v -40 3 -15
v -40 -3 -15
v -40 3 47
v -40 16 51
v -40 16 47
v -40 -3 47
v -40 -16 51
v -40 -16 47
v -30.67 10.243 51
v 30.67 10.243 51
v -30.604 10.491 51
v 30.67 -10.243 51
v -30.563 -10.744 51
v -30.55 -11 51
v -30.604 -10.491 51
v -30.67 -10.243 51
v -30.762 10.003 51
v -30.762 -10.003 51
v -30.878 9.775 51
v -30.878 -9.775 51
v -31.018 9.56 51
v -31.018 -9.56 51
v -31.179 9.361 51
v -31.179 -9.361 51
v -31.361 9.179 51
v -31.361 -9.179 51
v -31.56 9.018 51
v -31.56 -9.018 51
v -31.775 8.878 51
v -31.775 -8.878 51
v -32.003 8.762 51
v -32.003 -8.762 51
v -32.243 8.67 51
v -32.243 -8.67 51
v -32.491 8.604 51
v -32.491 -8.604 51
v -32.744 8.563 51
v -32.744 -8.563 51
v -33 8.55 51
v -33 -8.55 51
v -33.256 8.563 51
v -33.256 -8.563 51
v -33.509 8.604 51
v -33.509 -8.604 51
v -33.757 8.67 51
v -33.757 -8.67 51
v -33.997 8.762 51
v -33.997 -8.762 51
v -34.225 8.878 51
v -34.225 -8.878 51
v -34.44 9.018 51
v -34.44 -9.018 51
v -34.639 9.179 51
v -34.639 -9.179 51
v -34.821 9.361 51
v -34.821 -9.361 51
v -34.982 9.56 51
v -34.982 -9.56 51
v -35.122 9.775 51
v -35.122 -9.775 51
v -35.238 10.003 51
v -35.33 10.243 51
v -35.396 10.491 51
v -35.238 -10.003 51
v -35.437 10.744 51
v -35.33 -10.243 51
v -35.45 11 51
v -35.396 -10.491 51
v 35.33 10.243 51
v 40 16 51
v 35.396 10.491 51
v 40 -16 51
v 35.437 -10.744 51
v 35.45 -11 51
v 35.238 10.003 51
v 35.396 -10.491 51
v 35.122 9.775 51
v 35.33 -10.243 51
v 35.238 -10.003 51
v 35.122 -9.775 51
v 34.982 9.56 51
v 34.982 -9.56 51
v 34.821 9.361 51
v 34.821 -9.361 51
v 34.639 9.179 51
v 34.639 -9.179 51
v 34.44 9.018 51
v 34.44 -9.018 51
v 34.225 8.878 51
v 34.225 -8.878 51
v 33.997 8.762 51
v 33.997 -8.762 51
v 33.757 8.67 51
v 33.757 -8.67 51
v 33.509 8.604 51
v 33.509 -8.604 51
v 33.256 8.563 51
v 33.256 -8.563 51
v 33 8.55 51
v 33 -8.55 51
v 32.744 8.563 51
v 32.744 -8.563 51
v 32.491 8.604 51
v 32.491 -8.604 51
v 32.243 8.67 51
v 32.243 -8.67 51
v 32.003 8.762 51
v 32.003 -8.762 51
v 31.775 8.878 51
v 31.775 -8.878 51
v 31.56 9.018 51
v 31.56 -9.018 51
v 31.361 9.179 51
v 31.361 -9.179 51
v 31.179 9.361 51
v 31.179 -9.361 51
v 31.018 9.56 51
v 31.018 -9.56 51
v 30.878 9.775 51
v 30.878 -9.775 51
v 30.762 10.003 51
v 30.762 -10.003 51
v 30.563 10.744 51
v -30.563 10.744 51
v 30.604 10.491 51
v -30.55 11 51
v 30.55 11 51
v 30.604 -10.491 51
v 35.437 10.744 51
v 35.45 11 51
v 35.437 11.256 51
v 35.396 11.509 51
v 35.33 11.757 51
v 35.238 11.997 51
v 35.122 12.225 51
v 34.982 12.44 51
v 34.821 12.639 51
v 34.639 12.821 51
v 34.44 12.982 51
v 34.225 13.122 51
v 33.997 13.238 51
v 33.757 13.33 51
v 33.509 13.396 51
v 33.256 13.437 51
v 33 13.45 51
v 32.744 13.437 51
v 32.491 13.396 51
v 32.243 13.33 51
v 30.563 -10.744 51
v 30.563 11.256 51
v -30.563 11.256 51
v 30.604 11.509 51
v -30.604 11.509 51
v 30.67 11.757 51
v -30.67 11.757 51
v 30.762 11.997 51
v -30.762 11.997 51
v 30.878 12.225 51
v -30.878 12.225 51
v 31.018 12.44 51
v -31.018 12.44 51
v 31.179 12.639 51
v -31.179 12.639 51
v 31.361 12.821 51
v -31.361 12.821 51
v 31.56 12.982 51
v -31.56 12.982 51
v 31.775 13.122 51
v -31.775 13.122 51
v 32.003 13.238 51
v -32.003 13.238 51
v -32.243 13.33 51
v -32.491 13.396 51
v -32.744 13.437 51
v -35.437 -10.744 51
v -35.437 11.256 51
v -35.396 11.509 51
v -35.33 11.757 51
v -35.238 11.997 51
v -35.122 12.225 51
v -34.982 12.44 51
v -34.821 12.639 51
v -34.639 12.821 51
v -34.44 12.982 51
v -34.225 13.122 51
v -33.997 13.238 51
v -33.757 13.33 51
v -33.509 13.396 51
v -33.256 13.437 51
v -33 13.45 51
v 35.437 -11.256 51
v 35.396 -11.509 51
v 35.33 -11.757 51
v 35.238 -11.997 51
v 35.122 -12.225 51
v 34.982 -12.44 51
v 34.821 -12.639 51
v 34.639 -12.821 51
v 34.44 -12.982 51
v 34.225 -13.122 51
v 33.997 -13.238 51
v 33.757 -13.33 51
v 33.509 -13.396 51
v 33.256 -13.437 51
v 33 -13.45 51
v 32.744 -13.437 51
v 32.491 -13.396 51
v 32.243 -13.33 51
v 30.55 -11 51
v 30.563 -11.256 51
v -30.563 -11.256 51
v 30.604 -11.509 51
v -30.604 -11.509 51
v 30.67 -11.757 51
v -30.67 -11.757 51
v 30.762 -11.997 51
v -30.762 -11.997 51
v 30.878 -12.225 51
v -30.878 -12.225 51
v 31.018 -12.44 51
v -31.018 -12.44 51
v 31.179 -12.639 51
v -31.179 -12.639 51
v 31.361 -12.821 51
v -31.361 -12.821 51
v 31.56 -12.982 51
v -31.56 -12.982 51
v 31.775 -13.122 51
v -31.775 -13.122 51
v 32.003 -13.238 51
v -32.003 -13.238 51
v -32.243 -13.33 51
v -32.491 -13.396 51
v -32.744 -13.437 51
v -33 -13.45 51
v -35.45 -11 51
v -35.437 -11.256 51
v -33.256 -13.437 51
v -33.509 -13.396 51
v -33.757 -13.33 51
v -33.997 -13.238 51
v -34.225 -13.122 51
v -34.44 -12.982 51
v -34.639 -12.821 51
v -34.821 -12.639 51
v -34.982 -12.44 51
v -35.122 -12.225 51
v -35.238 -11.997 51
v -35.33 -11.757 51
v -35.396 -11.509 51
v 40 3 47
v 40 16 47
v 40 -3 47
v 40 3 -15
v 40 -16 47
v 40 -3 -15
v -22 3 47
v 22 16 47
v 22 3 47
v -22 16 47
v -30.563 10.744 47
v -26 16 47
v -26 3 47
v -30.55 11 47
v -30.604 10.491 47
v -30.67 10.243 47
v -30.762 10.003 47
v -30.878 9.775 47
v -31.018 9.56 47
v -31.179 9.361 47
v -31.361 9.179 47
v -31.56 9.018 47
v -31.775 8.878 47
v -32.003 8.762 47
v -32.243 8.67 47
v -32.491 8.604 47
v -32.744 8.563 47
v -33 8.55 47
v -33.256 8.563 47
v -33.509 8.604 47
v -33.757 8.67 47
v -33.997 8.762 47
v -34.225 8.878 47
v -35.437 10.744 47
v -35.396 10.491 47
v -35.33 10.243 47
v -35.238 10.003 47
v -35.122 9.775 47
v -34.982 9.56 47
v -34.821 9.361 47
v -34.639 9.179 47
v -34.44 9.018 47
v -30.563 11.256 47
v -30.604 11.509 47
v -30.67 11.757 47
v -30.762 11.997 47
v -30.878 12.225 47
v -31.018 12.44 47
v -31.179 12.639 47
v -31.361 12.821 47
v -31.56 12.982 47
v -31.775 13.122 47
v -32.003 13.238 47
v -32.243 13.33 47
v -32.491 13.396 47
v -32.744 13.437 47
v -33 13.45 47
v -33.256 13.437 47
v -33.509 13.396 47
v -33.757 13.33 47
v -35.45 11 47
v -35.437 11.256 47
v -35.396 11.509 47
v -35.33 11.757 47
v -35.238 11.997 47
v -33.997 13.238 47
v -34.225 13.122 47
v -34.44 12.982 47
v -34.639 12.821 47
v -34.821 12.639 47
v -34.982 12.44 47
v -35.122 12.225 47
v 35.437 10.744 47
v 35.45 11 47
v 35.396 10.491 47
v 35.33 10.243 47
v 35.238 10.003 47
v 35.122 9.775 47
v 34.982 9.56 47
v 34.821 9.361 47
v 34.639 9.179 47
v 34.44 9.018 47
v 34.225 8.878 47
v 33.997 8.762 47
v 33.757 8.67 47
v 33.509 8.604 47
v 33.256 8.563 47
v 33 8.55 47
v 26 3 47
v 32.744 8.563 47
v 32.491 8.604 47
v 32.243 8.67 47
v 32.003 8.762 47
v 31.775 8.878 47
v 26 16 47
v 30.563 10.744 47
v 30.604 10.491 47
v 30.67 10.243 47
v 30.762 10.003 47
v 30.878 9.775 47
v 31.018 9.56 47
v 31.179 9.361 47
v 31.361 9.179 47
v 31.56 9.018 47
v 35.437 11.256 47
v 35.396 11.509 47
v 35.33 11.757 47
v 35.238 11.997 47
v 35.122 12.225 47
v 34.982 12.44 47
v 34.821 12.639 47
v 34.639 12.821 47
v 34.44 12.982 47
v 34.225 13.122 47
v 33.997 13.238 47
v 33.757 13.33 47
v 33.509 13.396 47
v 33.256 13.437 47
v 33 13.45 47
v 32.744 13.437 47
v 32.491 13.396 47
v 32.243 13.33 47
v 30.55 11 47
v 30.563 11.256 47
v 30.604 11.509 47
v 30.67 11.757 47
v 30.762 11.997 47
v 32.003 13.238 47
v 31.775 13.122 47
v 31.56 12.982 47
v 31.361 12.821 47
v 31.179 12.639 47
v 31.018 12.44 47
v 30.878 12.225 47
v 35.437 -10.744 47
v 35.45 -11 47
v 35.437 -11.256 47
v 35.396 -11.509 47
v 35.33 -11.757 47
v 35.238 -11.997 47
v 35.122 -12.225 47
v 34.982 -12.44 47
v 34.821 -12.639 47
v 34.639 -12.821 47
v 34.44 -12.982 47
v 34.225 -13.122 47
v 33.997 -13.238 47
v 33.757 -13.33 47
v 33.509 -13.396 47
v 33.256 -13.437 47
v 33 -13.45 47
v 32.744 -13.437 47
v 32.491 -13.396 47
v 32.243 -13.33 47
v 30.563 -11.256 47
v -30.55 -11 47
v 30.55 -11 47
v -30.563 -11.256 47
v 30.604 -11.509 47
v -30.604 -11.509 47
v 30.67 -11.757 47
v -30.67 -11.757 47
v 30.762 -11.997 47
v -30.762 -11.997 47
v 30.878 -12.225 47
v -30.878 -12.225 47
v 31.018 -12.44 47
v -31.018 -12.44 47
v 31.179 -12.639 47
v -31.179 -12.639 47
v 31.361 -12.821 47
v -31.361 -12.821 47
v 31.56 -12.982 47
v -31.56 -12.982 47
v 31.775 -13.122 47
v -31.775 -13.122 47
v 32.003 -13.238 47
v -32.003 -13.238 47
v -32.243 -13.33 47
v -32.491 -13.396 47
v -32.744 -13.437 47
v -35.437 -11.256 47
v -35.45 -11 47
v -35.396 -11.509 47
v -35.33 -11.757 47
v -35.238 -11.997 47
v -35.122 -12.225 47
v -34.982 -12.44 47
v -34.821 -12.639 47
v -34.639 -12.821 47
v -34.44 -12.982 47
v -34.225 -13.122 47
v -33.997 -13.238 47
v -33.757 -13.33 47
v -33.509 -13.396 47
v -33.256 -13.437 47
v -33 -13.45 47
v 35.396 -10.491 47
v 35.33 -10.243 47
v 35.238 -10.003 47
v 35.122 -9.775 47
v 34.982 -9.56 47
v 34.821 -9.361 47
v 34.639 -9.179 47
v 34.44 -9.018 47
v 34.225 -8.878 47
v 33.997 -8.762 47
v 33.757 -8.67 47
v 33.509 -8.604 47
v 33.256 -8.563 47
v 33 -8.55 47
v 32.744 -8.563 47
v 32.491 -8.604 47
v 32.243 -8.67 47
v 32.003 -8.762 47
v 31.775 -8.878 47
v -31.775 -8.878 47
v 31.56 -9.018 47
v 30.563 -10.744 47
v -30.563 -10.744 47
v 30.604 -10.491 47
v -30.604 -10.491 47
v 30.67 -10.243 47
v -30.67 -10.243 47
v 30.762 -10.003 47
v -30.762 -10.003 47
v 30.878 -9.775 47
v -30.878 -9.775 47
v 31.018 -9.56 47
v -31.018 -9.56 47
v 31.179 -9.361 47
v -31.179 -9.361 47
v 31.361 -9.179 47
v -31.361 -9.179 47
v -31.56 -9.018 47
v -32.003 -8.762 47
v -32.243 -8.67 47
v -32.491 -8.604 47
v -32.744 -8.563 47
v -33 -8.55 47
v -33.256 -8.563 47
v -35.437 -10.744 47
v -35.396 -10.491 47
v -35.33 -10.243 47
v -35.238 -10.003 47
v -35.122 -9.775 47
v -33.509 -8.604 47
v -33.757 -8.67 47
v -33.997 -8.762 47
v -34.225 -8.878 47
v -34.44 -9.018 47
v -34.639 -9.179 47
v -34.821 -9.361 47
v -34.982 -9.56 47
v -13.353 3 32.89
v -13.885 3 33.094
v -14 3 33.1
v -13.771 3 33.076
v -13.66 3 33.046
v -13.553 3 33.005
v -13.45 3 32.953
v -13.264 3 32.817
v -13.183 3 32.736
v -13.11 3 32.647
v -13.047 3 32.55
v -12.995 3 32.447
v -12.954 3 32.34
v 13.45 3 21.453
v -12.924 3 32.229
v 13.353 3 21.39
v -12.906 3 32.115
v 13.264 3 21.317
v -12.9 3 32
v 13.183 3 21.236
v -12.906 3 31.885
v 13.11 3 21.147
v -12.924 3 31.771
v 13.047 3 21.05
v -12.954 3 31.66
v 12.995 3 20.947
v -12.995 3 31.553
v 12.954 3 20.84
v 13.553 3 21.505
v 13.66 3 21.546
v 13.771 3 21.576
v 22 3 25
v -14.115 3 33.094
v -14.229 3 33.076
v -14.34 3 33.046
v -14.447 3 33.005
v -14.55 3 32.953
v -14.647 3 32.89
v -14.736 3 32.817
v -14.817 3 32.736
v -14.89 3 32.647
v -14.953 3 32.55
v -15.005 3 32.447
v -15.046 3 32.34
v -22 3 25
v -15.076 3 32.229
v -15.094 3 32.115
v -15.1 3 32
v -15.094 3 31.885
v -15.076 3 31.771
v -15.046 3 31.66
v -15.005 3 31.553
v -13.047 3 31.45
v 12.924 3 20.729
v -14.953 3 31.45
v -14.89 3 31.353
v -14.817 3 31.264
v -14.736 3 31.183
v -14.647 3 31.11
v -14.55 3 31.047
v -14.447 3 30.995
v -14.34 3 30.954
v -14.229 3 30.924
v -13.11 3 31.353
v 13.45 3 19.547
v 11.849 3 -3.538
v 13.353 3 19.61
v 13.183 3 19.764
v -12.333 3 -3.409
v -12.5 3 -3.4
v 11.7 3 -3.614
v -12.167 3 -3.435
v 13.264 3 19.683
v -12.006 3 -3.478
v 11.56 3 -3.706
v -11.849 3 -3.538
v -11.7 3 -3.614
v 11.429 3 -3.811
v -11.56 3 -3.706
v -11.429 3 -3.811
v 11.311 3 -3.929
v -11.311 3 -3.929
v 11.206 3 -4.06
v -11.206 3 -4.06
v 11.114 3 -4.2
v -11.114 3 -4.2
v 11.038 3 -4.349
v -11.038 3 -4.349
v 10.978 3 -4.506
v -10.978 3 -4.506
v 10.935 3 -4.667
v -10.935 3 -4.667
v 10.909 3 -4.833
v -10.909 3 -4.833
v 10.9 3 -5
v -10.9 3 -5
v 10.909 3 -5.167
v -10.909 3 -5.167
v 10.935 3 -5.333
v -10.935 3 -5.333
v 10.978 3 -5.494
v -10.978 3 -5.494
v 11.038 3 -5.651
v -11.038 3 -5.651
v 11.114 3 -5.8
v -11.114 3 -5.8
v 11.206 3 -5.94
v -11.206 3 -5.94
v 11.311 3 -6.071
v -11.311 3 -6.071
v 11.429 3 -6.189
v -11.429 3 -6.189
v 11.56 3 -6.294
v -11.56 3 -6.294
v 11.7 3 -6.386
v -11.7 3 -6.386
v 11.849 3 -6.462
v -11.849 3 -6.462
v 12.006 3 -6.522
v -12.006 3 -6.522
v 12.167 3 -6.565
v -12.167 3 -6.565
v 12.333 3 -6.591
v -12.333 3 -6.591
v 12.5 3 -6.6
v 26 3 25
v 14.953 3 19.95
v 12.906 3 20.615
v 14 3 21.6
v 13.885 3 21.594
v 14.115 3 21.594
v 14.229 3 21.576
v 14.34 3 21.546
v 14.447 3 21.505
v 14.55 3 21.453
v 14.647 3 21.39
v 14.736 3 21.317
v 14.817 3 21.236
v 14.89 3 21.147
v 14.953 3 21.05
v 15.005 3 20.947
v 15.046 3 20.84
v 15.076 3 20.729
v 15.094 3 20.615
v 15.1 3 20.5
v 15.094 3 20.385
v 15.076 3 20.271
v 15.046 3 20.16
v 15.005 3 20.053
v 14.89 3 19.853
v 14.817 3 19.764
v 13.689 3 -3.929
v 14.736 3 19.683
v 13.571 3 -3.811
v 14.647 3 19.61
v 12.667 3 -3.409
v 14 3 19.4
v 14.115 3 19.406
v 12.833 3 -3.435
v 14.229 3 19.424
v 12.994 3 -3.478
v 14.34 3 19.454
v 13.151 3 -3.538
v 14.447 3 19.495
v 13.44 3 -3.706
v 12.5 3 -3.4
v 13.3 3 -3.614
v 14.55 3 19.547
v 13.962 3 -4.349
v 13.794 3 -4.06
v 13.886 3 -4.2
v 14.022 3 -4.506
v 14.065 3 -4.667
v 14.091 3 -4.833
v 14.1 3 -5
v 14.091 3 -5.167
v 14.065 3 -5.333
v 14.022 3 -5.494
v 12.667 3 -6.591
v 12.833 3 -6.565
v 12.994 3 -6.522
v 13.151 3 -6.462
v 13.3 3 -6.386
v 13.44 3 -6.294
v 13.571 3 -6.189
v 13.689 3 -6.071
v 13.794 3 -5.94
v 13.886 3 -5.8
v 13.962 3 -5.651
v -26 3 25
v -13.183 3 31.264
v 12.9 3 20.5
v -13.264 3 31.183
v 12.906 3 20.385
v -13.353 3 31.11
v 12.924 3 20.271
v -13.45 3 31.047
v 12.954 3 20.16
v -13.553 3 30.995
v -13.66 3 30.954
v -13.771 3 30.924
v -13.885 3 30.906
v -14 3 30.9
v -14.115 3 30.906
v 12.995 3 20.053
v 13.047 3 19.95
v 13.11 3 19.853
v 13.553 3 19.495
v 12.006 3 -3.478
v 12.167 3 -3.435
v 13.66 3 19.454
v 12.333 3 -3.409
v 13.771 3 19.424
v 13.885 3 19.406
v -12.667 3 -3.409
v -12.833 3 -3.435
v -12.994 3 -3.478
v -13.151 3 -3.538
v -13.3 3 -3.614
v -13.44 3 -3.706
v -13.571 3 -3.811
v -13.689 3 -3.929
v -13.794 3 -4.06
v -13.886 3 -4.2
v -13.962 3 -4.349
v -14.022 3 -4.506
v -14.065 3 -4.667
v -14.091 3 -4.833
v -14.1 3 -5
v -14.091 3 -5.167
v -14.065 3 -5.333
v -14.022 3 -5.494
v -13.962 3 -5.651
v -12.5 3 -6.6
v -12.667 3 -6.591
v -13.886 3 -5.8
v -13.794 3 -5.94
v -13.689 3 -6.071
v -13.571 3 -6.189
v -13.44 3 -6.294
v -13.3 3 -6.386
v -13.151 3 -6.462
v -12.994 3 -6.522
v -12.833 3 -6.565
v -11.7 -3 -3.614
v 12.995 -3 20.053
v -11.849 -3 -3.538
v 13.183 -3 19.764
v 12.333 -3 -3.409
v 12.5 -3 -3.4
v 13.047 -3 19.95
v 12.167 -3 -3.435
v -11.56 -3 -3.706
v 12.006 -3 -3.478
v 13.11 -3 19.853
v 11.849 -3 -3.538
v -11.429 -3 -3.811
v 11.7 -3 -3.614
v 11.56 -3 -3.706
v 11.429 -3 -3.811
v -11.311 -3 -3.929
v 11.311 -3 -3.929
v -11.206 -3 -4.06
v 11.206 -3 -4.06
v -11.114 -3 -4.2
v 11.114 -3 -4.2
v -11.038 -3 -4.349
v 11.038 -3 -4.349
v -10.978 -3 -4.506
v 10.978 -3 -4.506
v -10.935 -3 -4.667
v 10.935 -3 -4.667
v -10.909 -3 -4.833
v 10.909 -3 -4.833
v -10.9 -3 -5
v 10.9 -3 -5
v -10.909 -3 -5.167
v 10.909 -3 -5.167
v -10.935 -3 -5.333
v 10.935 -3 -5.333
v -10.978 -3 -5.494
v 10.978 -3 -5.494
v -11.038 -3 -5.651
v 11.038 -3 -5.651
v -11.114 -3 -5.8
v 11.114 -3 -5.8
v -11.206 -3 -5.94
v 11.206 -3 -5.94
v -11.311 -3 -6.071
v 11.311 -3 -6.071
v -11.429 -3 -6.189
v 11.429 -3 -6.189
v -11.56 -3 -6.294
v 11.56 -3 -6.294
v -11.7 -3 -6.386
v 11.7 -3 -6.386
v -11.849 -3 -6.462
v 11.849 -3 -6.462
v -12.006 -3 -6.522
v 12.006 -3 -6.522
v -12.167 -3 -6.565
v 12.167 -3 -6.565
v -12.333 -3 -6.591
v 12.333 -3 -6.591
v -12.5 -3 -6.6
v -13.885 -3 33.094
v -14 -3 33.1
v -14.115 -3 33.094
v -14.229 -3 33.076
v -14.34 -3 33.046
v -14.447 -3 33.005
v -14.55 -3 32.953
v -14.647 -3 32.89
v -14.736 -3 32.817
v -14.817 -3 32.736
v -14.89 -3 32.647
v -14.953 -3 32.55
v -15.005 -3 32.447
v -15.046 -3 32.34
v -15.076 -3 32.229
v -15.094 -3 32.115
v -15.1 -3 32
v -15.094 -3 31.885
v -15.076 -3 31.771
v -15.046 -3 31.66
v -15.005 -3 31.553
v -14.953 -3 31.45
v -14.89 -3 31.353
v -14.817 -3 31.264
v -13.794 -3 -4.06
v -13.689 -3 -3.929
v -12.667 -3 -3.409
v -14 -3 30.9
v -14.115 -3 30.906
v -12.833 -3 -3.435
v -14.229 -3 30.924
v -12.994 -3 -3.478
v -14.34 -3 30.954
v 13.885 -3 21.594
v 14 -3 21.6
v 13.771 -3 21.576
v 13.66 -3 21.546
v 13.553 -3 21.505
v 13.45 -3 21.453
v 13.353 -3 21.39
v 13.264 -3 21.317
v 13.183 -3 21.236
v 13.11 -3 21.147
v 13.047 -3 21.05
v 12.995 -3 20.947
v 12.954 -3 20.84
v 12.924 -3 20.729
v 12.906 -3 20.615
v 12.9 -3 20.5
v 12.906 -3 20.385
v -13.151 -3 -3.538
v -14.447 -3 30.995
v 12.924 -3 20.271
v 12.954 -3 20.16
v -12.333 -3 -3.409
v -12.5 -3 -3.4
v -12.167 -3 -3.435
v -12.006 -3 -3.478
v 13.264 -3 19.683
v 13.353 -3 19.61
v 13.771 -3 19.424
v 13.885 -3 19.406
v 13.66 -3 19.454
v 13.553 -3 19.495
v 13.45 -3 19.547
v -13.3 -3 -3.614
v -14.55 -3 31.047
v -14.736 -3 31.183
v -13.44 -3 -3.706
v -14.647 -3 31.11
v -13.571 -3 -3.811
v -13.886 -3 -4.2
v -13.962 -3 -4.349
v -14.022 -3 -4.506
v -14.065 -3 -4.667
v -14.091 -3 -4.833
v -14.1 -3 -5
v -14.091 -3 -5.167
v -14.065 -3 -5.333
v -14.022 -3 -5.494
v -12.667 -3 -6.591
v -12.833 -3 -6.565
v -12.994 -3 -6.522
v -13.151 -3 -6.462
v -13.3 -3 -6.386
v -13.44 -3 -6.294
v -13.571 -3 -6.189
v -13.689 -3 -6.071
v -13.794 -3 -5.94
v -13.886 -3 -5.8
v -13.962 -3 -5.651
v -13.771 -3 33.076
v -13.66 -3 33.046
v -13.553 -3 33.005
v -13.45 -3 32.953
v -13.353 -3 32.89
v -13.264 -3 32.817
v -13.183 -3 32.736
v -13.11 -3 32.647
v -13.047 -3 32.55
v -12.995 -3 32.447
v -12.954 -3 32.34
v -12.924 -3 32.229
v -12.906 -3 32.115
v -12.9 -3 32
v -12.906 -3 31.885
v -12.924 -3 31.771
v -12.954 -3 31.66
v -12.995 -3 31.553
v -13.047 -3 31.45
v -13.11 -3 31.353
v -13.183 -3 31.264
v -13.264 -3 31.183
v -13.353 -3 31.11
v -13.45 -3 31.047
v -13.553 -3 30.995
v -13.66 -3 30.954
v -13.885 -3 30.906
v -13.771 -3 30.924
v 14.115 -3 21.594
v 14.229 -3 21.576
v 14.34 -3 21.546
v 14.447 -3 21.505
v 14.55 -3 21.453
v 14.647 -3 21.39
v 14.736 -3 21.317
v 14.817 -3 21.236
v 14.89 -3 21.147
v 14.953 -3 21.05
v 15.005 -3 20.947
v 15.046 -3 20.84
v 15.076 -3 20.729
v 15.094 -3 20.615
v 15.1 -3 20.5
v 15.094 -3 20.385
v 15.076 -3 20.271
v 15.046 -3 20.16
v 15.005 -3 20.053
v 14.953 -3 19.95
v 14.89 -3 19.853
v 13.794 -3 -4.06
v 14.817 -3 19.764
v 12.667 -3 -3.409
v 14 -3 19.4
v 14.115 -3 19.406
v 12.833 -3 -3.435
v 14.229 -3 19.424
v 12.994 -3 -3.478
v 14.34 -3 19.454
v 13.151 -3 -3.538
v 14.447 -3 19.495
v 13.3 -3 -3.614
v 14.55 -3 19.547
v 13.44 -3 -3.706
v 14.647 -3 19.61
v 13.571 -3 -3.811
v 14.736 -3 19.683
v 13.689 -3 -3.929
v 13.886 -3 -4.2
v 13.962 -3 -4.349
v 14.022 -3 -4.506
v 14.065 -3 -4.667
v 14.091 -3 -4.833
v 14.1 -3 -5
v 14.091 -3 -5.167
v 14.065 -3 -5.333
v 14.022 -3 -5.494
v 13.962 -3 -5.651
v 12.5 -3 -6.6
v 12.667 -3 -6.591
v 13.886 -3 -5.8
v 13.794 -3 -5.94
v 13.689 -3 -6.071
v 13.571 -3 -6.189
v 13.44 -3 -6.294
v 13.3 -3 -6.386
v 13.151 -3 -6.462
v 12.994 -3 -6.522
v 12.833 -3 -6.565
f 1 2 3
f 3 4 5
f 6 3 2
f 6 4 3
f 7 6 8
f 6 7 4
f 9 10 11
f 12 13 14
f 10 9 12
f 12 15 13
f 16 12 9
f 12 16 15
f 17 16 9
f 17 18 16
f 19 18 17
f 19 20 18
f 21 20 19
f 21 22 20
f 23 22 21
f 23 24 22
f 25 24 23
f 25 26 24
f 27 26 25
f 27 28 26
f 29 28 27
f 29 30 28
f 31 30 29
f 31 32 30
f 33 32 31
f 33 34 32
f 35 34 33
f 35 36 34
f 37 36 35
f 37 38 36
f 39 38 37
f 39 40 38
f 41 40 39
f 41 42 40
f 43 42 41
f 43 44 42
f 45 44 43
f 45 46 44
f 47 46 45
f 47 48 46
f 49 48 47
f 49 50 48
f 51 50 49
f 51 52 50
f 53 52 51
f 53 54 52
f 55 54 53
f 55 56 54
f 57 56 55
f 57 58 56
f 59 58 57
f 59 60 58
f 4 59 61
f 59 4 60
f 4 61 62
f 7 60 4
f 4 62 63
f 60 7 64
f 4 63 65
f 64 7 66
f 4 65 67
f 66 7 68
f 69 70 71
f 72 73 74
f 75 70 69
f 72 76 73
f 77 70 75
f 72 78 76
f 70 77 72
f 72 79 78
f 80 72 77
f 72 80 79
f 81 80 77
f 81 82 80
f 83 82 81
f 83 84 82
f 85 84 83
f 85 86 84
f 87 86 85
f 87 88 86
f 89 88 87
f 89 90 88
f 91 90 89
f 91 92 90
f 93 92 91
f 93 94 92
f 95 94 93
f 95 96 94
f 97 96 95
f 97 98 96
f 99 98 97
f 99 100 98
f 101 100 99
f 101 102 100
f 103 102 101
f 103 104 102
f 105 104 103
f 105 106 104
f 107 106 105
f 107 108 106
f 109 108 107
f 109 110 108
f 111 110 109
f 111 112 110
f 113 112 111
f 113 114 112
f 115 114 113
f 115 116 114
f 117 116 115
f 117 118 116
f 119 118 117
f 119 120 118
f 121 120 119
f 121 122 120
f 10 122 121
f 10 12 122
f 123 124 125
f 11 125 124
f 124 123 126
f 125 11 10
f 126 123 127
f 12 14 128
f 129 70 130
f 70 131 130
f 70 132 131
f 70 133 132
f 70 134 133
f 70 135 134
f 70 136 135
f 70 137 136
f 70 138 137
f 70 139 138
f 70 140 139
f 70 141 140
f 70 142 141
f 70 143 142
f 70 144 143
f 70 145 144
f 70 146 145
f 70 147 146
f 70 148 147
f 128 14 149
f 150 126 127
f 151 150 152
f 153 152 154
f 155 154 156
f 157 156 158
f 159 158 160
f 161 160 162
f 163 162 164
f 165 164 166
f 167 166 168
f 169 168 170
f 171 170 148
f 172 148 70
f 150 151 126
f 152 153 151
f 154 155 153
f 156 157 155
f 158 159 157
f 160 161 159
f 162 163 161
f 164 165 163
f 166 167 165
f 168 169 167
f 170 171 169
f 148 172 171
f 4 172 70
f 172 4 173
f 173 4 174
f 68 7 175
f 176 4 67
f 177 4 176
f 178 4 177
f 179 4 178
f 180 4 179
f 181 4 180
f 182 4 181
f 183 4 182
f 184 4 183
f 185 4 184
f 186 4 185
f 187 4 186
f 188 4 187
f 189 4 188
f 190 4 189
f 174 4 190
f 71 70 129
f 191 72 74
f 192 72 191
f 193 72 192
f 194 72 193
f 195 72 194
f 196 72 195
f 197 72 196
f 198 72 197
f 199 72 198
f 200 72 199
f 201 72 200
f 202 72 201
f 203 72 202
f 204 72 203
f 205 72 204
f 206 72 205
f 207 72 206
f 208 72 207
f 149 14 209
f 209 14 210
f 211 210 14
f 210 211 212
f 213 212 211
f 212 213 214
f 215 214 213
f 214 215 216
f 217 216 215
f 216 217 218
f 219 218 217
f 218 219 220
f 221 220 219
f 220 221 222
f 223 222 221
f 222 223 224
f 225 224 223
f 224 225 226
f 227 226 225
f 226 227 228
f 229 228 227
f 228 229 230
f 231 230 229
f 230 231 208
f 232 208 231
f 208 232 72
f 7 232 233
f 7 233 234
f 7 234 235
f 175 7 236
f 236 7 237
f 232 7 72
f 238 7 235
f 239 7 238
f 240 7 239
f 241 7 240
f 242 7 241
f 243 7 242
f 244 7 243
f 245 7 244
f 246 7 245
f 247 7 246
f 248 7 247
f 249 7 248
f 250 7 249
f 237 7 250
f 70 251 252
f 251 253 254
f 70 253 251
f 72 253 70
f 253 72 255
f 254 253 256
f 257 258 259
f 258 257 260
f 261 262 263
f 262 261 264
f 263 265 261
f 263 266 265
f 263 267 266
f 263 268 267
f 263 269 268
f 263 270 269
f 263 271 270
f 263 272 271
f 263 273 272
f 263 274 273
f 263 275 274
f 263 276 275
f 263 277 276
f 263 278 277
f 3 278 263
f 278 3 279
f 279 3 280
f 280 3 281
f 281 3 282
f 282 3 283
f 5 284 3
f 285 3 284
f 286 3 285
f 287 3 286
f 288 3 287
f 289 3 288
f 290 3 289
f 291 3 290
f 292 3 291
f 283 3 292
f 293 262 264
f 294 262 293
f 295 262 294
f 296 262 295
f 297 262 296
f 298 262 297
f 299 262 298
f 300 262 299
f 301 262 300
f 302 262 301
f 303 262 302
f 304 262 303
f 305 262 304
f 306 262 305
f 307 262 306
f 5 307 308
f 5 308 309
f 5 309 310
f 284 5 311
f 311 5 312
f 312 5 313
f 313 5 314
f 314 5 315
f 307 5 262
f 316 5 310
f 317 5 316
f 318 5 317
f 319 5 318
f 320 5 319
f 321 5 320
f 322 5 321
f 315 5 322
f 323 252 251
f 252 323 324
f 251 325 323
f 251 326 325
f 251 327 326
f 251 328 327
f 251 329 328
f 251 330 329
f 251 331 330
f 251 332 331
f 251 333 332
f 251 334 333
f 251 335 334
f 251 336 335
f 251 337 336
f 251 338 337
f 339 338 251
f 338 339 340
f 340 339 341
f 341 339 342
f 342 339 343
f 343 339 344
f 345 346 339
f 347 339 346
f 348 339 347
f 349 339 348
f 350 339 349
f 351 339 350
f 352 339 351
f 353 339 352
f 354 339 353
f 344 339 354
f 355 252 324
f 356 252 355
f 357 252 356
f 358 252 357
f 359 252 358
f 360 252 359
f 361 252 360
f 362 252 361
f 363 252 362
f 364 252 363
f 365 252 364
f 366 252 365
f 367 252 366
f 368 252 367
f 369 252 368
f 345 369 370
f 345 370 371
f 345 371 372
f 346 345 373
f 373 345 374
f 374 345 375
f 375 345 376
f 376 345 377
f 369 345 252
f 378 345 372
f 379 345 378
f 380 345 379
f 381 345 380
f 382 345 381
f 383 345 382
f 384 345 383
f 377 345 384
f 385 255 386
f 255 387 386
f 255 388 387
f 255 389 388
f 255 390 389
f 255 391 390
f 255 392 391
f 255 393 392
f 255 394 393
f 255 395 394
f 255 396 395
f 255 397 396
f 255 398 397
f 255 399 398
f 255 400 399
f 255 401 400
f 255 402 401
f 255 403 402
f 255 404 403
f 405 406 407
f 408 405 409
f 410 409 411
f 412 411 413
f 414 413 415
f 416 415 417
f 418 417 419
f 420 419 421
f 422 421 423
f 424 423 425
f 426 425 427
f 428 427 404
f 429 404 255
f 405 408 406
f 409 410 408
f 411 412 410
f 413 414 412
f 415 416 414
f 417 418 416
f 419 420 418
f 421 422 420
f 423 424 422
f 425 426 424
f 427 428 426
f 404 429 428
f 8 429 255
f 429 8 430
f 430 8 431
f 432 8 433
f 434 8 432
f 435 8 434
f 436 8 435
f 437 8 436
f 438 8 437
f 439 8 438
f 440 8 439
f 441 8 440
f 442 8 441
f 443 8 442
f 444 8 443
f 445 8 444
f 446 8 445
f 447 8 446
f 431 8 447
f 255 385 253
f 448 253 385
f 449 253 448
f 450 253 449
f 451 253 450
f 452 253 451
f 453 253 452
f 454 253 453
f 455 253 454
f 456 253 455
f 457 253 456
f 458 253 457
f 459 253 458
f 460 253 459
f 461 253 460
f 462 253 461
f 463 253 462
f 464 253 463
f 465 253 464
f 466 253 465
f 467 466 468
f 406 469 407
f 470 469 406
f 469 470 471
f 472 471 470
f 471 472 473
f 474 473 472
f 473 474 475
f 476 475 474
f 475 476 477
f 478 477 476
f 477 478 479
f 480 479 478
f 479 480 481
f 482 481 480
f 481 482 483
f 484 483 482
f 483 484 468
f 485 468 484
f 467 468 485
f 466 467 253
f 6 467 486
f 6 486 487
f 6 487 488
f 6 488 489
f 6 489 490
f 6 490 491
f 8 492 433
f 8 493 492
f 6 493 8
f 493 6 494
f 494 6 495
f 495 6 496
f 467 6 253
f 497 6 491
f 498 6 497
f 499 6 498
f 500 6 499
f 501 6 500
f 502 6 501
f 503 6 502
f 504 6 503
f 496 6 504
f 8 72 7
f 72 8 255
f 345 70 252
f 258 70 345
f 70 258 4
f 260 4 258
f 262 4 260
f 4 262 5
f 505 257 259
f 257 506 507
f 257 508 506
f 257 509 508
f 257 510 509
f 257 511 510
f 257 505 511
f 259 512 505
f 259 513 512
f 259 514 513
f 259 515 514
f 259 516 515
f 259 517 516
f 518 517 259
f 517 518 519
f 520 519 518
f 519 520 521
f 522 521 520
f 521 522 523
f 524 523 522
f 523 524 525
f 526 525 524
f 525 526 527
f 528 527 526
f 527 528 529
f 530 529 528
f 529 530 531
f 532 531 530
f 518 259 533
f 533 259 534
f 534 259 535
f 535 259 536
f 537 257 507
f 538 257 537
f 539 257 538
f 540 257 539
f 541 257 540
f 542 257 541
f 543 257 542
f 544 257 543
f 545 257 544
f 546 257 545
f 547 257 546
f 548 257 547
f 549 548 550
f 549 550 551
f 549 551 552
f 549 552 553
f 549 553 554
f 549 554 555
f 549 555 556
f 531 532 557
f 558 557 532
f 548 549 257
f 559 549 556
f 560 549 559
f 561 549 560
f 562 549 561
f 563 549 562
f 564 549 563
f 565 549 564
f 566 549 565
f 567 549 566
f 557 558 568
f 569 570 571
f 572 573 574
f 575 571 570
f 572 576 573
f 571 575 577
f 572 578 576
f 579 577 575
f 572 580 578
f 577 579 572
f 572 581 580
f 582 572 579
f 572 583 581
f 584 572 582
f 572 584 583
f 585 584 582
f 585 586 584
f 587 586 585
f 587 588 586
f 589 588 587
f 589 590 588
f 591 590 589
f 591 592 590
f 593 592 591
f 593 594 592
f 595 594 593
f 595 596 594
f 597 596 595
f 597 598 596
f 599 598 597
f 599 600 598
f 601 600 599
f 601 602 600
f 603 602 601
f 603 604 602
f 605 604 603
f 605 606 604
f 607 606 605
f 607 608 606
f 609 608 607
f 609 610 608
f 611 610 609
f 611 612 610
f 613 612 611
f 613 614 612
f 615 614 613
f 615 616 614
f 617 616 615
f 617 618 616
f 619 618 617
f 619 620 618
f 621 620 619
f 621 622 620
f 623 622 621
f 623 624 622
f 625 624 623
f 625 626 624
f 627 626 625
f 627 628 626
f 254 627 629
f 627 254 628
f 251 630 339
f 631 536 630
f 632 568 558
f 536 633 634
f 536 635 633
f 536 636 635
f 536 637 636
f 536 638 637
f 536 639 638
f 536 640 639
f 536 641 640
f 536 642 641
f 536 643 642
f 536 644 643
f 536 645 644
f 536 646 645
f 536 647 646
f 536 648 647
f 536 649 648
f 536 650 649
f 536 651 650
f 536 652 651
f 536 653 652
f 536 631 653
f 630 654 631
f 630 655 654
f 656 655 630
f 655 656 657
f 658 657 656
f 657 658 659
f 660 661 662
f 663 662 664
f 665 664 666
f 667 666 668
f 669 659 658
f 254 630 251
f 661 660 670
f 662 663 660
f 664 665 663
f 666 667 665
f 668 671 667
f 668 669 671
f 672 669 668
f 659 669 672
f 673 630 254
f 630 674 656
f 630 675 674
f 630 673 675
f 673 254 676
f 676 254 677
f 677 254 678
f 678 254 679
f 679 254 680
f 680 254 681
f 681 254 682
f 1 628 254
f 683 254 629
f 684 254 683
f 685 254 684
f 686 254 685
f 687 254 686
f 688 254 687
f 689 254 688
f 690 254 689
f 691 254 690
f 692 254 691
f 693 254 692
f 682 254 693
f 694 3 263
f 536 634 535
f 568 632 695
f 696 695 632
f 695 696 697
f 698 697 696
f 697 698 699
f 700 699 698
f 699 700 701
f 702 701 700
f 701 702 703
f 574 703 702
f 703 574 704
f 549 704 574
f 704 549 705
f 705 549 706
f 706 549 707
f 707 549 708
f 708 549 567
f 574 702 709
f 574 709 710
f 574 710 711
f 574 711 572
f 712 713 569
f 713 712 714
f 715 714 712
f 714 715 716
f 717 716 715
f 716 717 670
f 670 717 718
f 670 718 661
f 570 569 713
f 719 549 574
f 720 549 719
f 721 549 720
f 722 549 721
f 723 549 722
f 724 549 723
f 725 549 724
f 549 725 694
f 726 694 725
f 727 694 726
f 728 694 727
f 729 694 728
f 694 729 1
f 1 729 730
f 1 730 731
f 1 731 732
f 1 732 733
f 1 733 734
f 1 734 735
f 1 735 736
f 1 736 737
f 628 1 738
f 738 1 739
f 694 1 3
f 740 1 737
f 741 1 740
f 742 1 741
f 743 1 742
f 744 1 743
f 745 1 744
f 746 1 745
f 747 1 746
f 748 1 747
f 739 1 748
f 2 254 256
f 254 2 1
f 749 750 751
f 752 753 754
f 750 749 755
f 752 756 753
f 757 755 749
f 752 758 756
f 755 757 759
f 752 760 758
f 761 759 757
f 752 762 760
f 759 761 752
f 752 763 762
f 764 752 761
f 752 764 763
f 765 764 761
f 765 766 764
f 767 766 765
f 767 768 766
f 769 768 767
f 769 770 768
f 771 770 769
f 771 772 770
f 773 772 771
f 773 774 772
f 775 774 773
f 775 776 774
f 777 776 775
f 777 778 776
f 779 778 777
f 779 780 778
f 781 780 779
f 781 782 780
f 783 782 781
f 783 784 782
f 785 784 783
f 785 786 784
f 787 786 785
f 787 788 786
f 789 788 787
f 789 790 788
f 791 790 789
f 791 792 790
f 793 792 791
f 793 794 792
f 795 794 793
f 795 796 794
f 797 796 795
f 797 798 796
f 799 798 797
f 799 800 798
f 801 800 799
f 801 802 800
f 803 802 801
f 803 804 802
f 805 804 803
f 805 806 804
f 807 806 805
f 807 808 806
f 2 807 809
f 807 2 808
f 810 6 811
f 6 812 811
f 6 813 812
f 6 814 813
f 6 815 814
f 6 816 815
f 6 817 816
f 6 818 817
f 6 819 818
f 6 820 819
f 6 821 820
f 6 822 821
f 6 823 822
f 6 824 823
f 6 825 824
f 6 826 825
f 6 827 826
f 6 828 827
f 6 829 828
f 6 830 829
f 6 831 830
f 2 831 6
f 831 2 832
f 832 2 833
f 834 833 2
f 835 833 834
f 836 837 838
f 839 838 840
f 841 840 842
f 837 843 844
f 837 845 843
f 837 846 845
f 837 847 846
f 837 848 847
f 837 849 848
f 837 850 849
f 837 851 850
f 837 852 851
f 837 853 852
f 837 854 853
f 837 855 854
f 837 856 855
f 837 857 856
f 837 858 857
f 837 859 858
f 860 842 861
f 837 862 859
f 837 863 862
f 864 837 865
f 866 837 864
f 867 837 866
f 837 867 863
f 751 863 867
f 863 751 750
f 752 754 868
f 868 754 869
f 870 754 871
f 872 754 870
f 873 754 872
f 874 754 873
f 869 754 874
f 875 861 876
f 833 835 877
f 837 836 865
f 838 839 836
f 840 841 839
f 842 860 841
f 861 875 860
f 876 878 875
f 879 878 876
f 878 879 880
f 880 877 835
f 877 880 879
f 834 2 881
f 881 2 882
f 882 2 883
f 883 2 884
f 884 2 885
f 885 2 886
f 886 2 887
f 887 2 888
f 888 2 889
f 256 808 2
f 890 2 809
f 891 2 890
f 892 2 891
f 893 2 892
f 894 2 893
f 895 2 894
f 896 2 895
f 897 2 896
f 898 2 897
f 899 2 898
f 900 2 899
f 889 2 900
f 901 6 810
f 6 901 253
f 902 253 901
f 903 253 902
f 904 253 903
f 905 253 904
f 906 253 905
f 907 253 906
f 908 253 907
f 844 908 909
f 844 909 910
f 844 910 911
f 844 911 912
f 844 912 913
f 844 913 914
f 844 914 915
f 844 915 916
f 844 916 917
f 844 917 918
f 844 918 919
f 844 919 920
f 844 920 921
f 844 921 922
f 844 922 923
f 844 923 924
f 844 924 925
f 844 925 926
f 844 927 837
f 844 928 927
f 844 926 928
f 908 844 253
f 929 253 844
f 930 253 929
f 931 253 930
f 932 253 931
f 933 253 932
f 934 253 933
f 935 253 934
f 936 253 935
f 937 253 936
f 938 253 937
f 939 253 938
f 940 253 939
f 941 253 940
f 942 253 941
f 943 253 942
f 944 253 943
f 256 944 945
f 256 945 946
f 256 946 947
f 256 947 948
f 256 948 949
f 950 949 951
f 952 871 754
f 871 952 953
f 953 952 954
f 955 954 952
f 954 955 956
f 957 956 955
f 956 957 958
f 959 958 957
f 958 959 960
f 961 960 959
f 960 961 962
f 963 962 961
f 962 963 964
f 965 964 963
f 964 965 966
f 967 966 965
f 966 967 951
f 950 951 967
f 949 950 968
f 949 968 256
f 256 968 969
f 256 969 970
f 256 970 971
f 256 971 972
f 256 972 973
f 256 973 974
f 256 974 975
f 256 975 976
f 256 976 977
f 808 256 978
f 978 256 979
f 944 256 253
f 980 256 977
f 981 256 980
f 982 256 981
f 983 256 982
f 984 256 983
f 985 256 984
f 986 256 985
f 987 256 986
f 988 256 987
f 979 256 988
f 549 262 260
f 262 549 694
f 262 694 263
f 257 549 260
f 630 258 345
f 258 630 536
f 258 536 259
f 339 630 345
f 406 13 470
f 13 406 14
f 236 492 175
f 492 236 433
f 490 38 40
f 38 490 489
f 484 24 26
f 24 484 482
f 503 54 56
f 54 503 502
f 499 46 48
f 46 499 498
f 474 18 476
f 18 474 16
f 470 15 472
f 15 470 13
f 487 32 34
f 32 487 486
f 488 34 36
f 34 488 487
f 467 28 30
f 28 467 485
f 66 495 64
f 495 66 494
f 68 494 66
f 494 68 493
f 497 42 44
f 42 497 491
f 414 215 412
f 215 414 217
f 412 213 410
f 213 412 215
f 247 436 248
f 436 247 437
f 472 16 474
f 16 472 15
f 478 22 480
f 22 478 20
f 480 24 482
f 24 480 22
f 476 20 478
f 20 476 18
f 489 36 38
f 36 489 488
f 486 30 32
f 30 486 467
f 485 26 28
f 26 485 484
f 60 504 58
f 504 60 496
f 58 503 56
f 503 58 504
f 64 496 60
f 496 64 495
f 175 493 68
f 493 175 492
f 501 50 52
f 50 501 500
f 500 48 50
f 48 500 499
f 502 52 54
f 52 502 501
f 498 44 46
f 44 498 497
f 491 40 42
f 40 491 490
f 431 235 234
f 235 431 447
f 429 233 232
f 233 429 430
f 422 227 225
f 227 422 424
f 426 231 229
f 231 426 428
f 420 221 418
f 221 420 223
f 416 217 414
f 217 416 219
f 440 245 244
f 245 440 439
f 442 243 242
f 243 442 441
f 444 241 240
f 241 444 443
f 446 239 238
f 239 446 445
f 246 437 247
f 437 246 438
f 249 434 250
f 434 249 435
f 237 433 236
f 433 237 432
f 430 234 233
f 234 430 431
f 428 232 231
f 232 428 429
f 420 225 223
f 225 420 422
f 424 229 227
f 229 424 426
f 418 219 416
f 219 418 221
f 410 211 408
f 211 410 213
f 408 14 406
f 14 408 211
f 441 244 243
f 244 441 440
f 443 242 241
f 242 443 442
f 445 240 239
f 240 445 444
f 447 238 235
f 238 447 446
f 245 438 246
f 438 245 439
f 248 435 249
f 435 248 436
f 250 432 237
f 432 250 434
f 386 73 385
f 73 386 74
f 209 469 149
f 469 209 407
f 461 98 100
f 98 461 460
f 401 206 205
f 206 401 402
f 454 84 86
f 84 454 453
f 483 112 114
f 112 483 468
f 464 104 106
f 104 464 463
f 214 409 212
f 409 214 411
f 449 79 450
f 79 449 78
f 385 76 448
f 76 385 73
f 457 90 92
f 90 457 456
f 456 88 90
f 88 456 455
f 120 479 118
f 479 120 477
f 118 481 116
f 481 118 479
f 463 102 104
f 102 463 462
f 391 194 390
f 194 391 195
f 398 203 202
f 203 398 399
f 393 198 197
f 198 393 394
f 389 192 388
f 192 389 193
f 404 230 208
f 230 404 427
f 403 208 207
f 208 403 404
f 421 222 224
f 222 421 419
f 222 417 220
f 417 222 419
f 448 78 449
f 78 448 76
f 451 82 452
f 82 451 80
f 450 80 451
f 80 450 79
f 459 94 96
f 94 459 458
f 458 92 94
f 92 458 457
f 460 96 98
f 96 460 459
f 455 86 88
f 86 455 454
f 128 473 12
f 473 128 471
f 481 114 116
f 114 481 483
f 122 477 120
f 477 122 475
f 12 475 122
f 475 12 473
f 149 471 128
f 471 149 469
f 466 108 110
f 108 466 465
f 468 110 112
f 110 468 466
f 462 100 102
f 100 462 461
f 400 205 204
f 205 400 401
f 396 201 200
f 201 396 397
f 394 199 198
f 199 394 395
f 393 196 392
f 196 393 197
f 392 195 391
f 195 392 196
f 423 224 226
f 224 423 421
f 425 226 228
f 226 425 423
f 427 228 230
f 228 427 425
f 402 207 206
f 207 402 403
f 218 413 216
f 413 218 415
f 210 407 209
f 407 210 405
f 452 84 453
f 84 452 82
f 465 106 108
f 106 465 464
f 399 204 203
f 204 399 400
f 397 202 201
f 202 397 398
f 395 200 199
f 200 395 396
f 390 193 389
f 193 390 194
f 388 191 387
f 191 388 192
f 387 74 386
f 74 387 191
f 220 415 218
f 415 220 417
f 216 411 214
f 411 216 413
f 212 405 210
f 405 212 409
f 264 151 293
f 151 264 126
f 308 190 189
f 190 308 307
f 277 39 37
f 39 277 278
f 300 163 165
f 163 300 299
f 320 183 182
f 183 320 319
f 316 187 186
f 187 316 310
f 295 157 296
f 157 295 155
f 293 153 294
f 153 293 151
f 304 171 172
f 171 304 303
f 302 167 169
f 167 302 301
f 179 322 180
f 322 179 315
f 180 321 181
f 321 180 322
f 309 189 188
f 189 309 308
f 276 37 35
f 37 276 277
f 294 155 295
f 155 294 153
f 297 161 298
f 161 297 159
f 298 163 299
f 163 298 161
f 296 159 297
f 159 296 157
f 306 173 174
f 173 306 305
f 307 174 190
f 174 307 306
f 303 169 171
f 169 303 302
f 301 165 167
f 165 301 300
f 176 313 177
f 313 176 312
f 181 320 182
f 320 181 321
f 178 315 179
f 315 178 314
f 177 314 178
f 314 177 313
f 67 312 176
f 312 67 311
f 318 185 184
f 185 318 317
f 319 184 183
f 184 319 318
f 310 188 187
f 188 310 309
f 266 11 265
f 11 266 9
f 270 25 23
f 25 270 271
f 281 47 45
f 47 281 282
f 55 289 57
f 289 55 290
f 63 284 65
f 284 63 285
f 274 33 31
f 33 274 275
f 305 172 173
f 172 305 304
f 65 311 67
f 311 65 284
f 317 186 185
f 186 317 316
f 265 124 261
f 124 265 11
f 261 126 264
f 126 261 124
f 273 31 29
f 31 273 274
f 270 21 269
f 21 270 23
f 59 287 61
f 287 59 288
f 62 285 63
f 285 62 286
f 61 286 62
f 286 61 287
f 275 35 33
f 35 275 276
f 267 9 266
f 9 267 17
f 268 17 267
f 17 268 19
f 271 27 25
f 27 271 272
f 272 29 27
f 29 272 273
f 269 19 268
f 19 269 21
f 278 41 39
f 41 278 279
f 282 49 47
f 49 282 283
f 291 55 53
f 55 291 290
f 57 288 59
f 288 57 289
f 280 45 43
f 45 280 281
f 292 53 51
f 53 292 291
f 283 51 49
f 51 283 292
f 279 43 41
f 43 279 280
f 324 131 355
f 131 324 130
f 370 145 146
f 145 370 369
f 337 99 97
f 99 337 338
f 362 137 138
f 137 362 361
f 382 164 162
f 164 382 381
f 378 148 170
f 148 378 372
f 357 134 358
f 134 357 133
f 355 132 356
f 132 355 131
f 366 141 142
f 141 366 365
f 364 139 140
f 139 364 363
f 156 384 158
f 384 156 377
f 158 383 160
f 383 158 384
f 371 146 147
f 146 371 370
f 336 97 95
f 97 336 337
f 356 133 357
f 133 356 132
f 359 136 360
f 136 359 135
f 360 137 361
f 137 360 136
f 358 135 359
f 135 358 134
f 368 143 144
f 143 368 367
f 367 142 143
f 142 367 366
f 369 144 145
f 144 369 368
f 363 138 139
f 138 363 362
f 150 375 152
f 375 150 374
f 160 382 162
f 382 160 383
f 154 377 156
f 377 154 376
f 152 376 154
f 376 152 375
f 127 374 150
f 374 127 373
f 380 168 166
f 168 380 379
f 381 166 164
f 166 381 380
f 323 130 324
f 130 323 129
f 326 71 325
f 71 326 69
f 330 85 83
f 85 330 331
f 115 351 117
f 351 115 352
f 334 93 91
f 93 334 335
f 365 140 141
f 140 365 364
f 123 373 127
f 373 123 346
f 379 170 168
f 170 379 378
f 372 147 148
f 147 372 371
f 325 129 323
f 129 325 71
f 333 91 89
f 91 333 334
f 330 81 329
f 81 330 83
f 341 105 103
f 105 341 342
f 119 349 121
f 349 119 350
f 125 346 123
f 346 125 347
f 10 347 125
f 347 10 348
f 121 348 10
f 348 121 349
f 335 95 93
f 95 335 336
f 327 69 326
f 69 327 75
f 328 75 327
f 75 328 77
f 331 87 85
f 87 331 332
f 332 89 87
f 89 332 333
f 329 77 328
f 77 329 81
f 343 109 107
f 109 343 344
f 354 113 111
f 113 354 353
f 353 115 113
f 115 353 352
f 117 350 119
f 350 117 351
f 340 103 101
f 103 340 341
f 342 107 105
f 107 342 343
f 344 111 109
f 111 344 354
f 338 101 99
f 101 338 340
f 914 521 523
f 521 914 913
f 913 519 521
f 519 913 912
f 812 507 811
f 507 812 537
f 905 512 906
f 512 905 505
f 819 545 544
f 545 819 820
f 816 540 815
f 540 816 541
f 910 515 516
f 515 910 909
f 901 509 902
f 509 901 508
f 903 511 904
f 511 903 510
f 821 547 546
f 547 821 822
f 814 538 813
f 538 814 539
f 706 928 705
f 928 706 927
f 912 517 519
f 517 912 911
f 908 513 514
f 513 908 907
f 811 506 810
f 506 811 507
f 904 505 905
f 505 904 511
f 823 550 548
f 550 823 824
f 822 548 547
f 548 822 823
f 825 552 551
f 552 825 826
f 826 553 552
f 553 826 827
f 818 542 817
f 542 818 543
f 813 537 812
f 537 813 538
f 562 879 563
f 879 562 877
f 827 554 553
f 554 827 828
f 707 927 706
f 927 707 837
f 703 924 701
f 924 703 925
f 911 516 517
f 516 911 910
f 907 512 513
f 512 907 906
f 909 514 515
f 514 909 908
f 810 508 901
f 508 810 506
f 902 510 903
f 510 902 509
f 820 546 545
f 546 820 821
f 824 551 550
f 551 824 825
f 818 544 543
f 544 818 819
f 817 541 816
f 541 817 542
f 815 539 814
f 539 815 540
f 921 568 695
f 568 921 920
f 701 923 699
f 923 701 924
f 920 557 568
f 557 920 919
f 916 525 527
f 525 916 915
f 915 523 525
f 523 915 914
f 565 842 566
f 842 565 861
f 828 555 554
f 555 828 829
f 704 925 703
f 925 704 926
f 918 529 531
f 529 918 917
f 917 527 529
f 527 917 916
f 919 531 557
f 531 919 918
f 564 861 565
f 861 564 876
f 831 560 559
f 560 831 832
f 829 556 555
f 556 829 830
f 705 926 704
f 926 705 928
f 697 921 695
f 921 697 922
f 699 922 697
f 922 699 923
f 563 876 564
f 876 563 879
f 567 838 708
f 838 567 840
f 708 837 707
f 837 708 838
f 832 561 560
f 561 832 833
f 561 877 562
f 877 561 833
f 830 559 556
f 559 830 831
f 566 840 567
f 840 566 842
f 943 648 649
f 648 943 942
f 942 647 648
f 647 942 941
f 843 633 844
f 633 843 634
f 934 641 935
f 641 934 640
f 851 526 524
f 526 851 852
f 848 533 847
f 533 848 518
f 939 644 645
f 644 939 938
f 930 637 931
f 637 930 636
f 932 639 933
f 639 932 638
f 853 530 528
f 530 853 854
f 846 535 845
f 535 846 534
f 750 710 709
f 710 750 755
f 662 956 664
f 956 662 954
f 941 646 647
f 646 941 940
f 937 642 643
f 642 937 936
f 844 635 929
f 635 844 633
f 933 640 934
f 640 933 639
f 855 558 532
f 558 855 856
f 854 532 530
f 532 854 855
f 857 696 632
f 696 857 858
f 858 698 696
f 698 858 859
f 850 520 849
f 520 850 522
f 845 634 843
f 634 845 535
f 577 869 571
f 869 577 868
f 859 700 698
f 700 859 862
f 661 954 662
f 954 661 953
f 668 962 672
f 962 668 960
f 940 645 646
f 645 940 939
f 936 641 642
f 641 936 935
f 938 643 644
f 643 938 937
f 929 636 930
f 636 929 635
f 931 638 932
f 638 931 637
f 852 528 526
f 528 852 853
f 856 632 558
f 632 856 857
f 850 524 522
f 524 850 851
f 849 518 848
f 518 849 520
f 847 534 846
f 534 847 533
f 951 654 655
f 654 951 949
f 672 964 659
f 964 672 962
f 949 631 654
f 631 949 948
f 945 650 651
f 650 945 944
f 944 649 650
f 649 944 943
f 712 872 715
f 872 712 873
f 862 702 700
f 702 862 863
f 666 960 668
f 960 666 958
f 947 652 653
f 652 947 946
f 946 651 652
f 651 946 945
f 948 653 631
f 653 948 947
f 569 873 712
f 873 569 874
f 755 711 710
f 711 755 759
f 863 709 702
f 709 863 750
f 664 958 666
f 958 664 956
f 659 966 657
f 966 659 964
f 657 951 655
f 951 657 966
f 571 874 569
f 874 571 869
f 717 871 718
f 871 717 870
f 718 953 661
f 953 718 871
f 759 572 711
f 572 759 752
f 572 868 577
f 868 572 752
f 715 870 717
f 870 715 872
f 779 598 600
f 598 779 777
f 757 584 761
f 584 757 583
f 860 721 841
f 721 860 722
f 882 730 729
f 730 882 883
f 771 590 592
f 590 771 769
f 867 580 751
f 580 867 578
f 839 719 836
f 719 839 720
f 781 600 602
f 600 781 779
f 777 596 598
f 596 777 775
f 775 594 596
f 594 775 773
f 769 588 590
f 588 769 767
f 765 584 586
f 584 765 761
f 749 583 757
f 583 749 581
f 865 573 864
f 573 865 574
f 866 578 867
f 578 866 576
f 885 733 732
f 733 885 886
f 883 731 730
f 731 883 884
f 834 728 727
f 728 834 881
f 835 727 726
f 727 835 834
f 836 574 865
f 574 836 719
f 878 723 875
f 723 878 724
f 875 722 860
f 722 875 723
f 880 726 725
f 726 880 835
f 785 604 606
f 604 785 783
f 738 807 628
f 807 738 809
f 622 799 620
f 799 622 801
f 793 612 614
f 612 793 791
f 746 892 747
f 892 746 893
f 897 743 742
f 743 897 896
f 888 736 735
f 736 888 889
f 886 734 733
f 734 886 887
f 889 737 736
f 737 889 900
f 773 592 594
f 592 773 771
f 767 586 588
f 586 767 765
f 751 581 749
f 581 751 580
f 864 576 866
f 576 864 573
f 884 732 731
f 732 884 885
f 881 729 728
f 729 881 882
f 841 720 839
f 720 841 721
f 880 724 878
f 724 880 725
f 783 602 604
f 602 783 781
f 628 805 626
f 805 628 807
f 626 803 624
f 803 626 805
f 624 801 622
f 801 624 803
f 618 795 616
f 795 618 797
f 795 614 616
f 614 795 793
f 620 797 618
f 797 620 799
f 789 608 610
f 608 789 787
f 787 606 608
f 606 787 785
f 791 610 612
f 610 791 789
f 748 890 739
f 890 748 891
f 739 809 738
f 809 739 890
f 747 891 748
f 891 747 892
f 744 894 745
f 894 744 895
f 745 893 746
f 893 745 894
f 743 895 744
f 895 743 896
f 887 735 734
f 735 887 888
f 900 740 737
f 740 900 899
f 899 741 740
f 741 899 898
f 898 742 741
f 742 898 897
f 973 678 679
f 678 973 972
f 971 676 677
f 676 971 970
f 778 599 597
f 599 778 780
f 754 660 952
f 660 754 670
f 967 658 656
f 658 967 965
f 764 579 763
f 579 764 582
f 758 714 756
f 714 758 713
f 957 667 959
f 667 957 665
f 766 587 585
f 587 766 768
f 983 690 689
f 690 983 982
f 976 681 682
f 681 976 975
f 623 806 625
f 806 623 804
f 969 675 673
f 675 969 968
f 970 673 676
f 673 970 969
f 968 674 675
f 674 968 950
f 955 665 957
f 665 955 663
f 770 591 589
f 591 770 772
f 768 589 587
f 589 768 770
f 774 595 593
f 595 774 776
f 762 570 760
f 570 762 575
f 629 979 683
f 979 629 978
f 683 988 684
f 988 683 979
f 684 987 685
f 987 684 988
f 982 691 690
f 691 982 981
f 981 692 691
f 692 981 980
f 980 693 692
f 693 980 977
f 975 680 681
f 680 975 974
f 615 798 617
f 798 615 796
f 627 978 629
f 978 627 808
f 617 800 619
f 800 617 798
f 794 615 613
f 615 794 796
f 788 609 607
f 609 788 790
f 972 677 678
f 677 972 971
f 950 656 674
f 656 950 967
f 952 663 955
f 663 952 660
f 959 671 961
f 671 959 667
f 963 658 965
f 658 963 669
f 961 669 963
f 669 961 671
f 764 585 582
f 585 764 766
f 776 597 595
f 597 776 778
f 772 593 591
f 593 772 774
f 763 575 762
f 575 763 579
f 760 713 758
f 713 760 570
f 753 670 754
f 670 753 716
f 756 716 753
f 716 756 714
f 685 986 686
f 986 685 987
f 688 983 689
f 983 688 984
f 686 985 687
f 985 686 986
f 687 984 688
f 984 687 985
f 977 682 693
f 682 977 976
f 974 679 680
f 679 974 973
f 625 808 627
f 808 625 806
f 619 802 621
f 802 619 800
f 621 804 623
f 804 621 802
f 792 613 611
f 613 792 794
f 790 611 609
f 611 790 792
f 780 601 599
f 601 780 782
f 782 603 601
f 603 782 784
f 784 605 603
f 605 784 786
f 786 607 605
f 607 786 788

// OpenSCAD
$fn = 60; // ความละเอียดรูกลมสูงสุด

module sensor_housing_wide_ribs() {
    difference() {
        // --- 1. ชิ้นงานตันหลัก (Solid Body + ครีบ Rib 4 ตัว ถ่างออกกว้างพิเศษ) ---
        union() {
            // [แผ่นนอน] หนา 4mm ขนาด 80x32mm วางศูนย์กลางที่ Y = 0
            translate([-40, -16, 47]) cube([80, 32, 4]);
            
            // [แผ่นตั้งยึดเซ็นเซอร์] หนา 6mm ดิ่งลงมาจากกึ่งกลางแผ่นนอน (Y = -3 ถึง 3)
            translate([-40, -3, -15]) cube([80, 6, 62]);
            
            // --- RIB ชุดฝั่งซ้าย (อยู่ที่ X = -26 หนา 4mm วิ่งไปถึง -22) ---
            translate([-26, -16, 25]) r_rib_front();
            translate([-26, 3, 25]) r_rib_rear();
            
            // --- RIB ชุดฝั่งขวา (อยู่ที่ X = 22 หนา 4mm วิ่งไปถึง 26) ---
            translate([22, -16, 25]) r_rib_front();
            translate([22, 3, 25]) r_rib_rear();
        }
        
        // --- 2. รูเจาะระบบลดแรงสั่นสะเทือน (Rubber Damper Holes) 4 จุด ---
        // พิกัดล็อกตายตัวแมตช์กับชิ้นบน: X = ±33, Y = ±11
        translate([-33, -11, 46]) cylinder(d=4.9, h=6);
        translate([33, -11, 46]) cylinder(d=4.9, h=6);
        translate([-33, 11, 46]) cylinder(d=4.9, h=6);
        translate([33, 11, 46]) cylinder(d=4.9, h=6);

        // ====================================================
        // รูเจาะทะลุเรียบๆ สำหรับ TFmini Plus (X = ±14)
        // ====================================================
        translate([-14, 10, 32]) rotate([90,0,0]) cylinder(d=2.2, h=20);
        translate([14, 10, 20.5]) rotate([90,0,0]) cylinder(d=2.2, h=20);

        // ====================================================
        // รูเจาะทะลุเรียบๆ สำหรับ Intel RealSense D435i (X = ±12.5)
        // ====================================================
        translate([-12.5, 10, -5]) rotate([90,0,0]) cylinder(d=3.2, h=20);
        translate([12.5, 10, -5]) rotate([90,0,0]) cylinder(d=3.2, h=20);
    }
}

// Sub-modules สำหรับสร้างโครงสร้างรูปทรง Rib ชิ้นล่าง
module r_rib_front() {
    polyhedron(
        points = [
            [0,  0, 22], [4,  0, 22], [4, 13,  0], 
            [0, 13,  0], [0, 13, 22], [4, 13, 22]
        ],
        faces = [[0, 1, 5, 4], [2, 3, 0, 1], [3, 2, 5, 4], [0, 4, 3], [1, 2, 5]]
    );
}

module r_rib_rear() {
    polyhedron(
        points = [
            [0,  0,  0], [4,  0,  0], [4,  0, 22], 
            [0,  0, 22], [0, 13, 22], [4, 13, 22]
        ],
        faces = [[0, 1, 2, 3], [3, 2, 5, 4], [1, 0, 4, 5], [0, 3, 4], [1, 5, 2]]
    );
}

// รันโมเดลชิ้นล่าง
sensor_housing_wide_ribs();
